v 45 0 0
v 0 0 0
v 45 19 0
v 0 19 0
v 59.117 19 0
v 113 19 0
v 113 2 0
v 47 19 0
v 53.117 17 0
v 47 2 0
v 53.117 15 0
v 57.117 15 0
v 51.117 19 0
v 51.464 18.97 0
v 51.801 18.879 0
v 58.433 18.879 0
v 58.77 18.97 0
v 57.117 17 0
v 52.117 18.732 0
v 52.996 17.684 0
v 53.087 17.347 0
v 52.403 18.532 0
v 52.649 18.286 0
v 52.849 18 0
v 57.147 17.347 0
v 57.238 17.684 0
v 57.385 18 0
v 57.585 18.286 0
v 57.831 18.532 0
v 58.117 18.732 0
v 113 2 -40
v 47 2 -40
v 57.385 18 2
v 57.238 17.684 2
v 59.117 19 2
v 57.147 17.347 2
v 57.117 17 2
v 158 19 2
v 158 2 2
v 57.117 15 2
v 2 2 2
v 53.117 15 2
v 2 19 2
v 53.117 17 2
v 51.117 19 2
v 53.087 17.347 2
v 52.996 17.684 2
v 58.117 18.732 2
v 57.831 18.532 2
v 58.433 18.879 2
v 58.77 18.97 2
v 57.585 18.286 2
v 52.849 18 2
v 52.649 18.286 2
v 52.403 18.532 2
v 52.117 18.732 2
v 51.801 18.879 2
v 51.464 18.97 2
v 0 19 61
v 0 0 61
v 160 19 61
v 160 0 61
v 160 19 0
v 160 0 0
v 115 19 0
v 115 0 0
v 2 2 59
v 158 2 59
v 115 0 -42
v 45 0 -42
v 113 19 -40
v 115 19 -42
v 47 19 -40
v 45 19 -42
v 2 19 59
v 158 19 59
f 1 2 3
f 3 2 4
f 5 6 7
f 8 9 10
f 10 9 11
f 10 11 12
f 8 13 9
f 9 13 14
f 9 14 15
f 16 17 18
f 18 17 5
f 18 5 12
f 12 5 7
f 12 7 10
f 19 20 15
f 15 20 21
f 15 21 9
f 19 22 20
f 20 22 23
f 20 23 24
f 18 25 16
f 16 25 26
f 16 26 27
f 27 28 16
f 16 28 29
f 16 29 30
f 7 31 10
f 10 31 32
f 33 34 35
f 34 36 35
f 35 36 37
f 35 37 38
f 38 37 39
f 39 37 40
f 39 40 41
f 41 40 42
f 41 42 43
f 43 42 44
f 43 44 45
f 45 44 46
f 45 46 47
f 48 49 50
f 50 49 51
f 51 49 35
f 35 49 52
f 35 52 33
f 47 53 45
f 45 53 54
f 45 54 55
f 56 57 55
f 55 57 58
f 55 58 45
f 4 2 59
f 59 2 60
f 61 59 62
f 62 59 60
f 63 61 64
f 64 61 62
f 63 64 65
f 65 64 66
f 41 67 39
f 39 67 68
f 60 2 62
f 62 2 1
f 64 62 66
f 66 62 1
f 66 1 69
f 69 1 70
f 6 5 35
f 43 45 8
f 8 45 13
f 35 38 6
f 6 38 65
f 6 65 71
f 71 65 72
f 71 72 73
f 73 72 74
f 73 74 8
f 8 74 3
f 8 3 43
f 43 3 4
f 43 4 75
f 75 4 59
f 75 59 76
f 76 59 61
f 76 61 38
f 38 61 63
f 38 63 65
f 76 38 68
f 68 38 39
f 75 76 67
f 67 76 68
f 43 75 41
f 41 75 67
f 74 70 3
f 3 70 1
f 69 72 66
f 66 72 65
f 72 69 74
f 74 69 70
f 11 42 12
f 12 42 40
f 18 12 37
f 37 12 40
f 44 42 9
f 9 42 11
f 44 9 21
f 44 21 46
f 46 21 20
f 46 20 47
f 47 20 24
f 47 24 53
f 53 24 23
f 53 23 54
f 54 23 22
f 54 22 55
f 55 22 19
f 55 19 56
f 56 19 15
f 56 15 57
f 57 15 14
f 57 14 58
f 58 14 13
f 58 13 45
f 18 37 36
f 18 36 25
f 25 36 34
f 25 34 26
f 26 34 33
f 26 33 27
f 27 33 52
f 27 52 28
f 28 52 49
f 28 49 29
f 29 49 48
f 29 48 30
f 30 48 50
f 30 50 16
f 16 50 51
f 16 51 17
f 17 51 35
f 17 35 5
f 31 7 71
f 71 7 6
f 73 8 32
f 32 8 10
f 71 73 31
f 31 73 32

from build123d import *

# Parameters (mm, degrees)
SKETCH1_W           = 160
SKETCH1_H           = 61
BOSS_EXTRUDE1_DEPTH = 2
SKETCH2_W           = 160
SKETCH2_H           = 2
BOSS_EXTRUDE2_DEPTH = 17
SKETCH3_W           = 156
SKETCH3_H           = 2
BOSS_EXTRUDE3_DEPTH = 17
SKETCH4_W           = 70
SKETCH4_H           = 2
BOSS_EXTRUDE4_DEPTH = 42
SKETCH5_W           = 4
SKETCH5_H           = 8
CUT_EXTRUDE1_DEPTH  = 39
FILLET1_R           = 2
SKETCH6_W           = 2
SKETCH6_H           = 42
BOSS_EXTRUDE5_DEPTH = 17
SKETCH9_W           = 66
SKETCH9_H           = 2
BOSS_EXTRUDE6_DEPTH = 17


with BuildPart() as part:
    # Sketch1 → Boss-Extrude1 (new body)
    with BuildSketch(Plane(origin=(0, 0, 0), x_dir=(1, 0, 0), z_dir=(0, 1, 0))):
        with Locations((80, -30.5)):
            Rectangle(SKETCH1_W, SKETCH1_H)
    extrude(amount=BOSS_EXTRUDE1_DEPTH)

    # Sketch2 → Boss-Extrude2 (add)
    with BuildSketch(Plane(origin=(0, 2, 0), x_dir=(1, 0, 0), z_dir=(0, 1, 0))):
        with Locations((80, -1)):
            Rectangle(SKETCH2_W, SKETCH2_H)
    extrude(amount=BOSS_EXTRUDE2_DEPTH)

    # Sketch3 → Boss-Extrude3 (add)
    with BuildSketch(Plane(origin=(0, 2, 0), x_dir=(1, 0, 0), z_dir=(0, 1, 0))):
        Polygon((0, -2), (0, -61), (2, -61), (2, -59), (2, -2), align=None)
        Polygon((158, -59), (158, -61), (160, -61), (160, -2), (158, -2), align=None)
        with Locations((80, -60)):
            Rectangle(SKETCH3_W, SKETCH3_H)
    extrude(amount=BOSS_EXTRUDE3_DEPTH)

    # Sketch4 → Boss-Extrude4 (add)
    with BuildSketch(Plane(origin=(0, 0, 0), x_dir=(-1, 0, 0), z_dir=(0, 0, -1))):
        with Locations((-80, 1)):
            Rectangle(SKETCH4_W, SKETCH4_H)
    extrude(amount=BOSS_EXTRUDE4_DEPTH)

    # Sketch5 → Cut-Extrude1 (cut)
    with BuildSketch(Plane(origin=(0, 0, 0), x_dir=(-1, 0, 0), z_dir=(0, 0, -1))):
        with Locations((-55.116937283, 19)):
            Rectangle(SKETCH5_W, SKETCH5_H)
    extrude(amount=-CUT_EXTRUDE1_DEPTH, mode=Mode.SUBTRACT)

    # Fillet1
    fillet1_edges = [part.edges().sort_by_distance(p)[0] for p in [
        (53.116937283, 19, 1),
        (57.116937283, 19, 1),
    ]]
    fillet(fillet1_edges, radius=FILLET1_R)

    # Sketch6 → Boss-Extrude5 (add)
    with BuildSketch(Plane(origin=(0, 2, 0), x_dir=(1, 0, 0), z_dir=(0, 1, 0))):
        with Locations((114, 21)):
            Rectangle(SKETCH6_W, SKETCH6_H)
    extrude(amount=BOSS_EXTRUDE5_DEPTH)

    # Sketch9 → Boss-Extrude6 (add)
    with BuildSketch(Plane(origin=(0, 2, 0), x_dir=(1, 0, 0), z_dir=(0, 1, 0))):
        Polygon((47, 42), (45, 42), (45, 0), (47, 0), (47, 40), align=None)
        with Locations((80, 41)):
            Rectangle(SKETCH9_W, SKETCH9_H)
    extrude(amount=BOSS_EXTRUDE6_DEPTH)


solid = part.part
